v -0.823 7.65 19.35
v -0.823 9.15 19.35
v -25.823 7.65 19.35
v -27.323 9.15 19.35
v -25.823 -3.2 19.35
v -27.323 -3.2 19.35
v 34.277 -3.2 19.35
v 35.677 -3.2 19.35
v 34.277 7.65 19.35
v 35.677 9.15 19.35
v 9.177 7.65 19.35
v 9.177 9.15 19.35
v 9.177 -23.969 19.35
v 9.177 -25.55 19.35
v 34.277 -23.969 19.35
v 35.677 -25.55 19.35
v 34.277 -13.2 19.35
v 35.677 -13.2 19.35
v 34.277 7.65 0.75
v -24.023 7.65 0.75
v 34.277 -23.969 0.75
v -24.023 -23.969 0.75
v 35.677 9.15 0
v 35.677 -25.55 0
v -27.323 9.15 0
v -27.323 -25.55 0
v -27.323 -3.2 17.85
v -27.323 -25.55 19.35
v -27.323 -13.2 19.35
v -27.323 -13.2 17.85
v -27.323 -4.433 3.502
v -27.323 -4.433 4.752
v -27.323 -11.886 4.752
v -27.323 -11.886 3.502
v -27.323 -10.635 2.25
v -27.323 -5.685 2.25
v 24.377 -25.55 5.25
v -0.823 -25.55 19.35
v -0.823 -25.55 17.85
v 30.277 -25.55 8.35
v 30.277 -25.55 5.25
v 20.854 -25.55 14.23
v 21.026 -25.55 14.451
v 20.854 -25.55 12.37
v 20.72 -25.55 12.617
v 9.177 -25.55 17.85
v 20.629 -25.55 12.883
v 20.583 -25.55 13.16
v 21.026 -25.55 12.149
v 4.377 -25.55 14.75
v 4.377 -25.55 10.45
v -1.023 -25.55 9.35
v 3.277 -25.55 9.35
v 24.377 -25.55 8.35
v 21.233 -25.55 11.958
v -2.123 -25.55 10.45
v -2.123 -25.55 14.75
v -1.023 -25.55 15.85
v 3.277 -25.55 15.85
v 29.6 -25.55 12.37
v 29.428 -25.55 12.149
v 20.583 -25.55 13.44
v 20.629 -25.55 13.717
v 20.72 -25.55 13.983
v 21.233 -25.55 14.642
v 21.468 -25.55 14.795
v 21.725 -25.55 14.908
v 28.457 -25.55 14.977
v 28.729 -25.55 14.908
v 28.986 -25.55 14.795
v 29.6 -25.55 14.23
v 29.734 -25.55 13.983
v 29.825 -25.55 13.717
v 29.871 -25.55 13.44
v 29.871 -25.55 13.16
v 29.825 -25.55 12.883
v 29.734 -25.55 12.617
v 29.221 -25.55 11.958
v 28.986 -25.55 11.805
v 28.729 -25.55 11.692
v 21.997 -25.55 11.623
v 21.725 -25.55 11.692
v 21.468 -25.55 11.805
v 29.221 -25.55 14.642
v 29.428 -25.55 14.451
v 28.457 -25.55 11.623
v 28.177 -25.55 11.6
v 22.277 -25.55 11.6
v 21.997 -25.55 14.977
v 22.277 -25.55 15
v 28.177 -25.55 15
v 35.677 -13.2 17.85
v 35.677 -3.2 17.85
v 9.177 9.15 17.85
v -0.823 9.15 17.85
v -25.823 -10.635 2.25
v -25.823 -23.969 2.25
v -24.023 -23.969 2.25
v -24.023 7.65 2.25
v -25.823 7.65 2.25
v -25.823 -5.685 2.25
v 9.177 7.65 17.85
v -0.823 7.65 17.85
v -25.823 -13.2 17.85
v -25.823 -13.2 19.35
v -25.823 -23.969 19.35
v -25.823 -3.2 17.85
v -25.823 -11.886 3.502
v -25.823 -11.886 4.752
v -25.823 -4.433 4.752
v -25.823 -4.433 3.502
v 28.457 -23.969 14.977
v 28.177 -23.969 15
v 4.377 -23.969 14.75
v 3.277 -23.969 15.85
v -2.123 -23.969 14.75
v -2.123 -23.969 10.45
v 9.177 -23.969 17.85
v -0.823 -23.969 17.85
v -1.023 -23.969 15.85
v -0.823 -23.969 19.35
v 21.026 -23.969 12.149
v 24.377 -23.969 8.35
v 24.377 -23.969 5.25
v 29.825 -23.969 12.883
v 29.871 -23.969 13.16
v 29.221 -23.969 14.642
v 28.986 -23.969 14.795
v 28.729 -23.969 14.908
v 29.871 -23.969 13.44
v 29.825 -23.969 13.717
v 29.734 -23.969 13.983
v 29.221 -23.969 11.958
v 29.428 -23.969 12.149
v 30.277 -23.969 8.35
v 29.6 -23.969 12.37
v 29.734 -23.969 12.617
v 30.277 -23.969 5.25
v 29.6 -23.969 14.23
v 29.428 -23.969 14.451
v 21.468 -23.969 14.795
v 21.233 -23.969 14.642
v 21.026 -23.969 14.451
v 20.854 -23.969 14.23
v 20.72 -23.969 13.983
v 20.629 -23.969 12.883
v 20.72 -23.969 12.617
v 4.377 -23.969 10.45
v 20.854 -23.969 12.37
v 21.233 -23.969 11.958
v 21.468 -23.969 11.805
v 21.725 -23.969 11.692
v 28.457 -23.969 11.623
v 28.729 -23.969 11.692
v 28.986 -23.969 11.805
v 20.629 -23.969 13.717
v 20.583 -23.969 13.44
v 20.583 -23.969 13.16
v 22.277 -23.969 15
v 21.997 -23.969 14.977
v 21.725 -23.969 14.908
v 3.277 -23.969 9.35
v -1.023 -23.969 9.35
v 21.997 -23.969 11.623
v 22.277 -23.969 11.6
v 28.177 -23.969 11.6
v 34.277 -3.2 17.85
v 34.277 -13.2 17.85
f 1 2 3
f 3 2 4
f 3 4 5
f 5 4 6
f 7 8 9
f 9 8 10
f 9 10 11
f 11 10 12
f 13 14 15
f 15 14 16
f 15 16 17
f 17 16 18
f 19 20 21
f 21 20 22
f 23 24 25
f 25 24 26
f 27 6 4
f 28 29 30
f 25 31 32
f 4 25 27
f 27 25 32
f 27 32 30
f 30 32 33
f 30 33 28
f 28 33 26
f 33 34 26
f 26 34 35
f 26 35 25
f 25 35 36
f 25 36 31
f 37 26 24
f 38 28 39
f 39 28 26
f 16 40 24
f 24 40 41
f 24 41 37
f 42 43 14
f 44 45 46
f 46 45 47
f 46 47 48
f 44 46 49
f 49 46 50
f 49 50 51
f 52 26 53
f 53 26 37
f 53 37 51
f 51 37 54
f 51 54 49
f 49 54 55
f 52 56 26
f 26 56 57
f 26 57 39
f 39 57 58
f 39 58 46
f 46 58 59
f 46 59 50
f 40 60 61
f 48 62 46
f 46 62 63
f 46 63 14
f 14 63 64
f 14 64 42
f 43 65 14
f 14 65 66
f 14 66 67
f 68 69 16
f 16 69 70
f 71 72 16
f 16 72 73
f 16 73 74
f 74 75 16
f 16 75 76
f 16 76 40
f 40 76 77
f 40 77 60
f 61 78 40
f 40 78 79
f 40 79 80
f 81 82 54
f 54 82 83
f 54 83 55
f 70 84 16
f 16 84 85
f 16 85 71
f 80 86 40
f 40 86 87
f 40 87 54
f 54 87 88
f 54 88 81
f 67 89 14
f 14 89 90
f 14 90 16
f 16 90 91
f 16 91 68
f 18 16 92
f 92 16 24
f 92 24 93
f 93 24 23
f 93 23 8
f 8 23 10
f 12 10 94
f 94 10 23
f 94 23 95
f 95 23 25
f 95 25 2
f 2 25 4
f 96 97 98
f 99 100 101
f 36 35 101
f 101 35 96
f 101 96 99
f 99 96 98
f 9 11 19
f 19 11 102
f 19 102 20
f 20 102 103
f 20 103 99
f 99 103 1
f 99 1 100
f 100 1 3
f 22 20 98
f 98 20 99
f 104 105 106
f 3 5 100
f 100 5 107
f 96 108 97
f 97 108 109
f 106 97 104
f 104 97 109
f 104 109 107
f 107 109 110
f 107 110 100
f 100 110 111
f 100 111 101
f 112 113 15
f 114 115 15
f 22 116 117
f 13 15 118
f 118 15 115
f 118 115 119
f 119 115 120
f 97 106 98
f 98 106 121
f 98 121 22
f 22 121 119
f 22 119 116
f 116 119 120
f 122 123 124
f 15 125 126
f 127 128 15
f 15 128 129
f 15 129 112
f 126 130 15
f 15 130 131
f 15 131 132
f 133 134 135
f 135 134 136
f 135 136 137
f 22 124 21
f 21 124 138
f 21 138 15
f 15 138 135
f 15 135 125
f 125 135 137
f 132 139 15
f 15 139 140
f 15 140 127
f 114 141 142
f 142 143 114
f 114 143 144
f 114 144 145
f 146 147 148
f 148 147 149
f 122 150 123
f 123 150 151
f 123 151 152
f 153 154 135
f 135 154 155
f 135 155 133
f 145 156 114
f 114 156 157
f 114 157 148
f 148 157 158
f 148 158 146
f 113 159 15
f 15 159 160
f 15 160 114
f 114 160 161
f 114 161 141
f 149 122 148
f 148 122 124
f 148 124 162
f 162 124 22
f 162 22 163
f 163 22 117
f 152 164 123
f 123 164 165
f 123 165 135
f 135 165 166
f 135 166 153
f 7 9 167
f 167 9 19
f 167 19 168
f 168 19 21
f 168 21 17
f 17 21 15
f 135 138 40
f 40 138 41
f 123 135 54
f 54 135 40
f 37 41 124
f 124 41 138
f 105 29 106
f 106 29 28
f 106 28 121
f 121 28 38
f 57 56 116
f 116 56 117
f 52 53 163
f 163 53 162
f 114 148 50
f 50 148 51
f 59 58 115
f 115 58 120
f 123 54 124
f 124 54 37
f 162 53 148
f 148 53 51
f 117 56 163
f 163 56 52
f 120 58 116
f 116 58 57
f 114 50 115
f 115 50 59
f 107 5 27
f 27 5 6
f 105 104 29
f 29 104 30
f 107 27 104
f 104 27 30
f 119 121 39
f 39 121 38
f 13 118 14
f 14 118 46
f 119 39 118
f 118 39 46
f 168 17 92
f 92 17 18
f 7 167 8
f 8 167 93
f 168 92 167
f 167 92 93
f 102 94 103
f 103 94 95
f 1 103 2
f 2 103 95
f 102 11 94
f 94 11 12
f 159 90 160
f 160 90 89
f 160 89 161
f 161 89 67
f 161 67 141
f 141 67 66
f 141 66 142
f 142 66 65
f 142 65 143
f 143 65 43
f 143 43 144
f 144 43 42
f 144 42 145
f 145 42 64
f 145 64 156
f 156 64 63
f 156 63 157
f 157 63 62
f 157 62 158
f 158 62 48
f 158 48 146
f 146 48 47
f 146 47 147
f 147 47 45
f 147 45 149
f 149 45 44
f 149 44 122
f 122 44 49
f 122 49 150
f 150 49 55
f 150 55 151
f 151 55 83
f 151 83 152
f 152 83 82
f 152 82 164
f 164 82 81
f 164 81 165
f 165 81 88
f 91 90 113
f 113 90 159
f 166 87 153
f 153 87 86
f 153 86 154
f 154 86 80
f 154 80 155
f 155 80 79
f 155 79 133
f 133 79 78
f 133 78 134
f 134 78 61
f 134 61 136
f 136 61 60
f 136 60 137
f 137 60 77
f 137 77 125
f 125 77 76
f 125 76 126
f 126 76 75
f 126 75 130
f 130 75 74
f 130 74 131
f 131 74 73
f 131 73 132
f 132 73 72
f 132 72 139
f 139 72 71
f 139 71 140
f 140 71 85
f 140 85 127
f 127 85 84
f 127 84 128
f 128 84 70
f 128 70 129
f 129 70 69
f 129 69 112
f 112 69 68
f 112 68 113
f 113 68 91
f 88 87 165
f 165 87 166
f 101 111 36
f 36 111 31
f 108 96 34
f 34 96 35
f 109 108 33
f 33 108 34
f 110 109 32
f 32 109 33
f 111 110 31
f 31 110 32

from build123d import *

# Parameters (mm, degrees)
CROQUIS1_W              = 58.2
CROQUIS1_H              = 31.7
CROQUIS1_R              = 1.55
SALIENTE_EXTRUIR1_DEPTH = 0.75
CROQUIS3_W              = 63
CROQUIS3_H              = 34.7
CROQUIS3_W_2            = 58.2
CROQUIS3_H_2            = 31.7
SALIENTE_EXTRUIR2_DEPTH = 2.25
CROQUIS4_W              = 63
CROQUIS4_H              = 34.7
CROQUIS4_W_2            = 60
CROQUIS4_H_2            = 31.619362532
SALIENTE_EXTRUIR3_DEPTH = 9.35
CROQUIS5_W              = 0.932931466
CROQUIS5_H              = 31.619362532
CORTAR_EXTRUIR1_DEPTH   = 10
CROQUIS6_W              = 0.932931466
CROQUIS6_H              = 31.619362532
SALIENTE_EXTRUIR4_DEPTH = 0.75
CROQUIS7_W              = 6.3
CROQUIS7_H              = 3.1
CORTAR_EXTRUIR2_DEPTH   = 10
CROQUIS9_W              = 63
CROQUIS9_H              = 34.7
CROQUIS9_W_2            = 60.1
CROQUIS9_H_2            = 31.619362532
SALIENTE_EXTRUIR5_DEPTH = 10
CROQUIS10_W             = 6.5
CROQUIS10_H             = 6.5
CORTAR_EXTRUIR3_DEPTH   = 10
CORTAR_EXTRUIR4_DEPTH   = 10
CROQUIS12_W             = 0.4
CROQUIS12_H             = 3.1
SALIENTE_EXTRUIR6_DEPTH = 1.580637468
CORTAR_EXTRUIR5_DEPTH   = 10
SALIENTE_EXTRUIR7_DEPTH = 1.580637468
CROQUIS15_W             = 63
CROQUIS15_H             = 34.7
SALIENTE_EXTRUIR8_DEPTH = 0.75
CORTAR_EXTRUIR6_DEPTH   = 1.5
CORTAR_EXTRUIR8_DEPTH   = 10
SALIENTE_EXTRUIR9_DEPTH = 1.5
CORTAR_EXTRUIR9_DEPTH   = 10


with BuildPart() as part:
    # Croquis1 → Saliente-Extruir1 (new body)
    with BuildSketch(Plane.XY):
        with Locations((5.077191095, -8.199822064)):
            Rectangle(CROQUIS1_W, CROQUIS1_H)
        with Locations((-20.872808905, 4.450177936)):
            Circle(CROQUIS1_R, mode=Mode.SUBTRACT)
        with Locations((31.027191095, 4.450177936)):
            Circle(CROQUIS1_R, mode=Mode.SUBTRACT)
        with Locations((-20.872808905, -20.849822064)):
            Circle(CROQUIS1_R, mode=Mode.SUBTRACT)
        with Locations((31.027191095, -20.849822064)):
            Circle(CROQUIS1_R, mode=Mode.SUBTRACT)
    extrude(amount=SALIENTE_EXTRUIR1_DEPTH)

    # Croquis3 → Saliente-Extruir2 (add)
    with BuildSketch(Plane(origin=(0, 0, 0), x_dir=(-1, 0, 0), z_dir=(0, 0, -1))):
        with Locations((-4.177191095, -8.199822064)):
            Rectangle(CROQUIS3_W, CROQUIS3_H)
        with Locations((-5.077191095, -8.199822064)):
            Rectangle(CROQUIS3_W_2, CROQUIS3_H_2, mode=Mode.SUBTRACT)
    extrude(amount=-SALIENTE_EXTRUIR2_DEPTH)

    # Croquis4 → Saliente-Extruir3 (add)
    with BuildSketch(Plane.XY):
        with Locations((4.177191095, -8.199822064)):
            Rectangle(CROQUIS4_W, CROQUIS4_H)
        with Locations((4.177191095, -8.15950333)):
            Rectangle(CROQUIS4_W_2, CROQUIS4_H_2, mode=Mode.SUBTRACT)
    extrude(amount=SALIENTE_EXTRUIR3_DEPTH)

    # Croquis5 → Cortar-Extruir1 (cut)
    with BuildSketch(Plane.XY):
        with Locations((33.810725362, -8.15950333)):
            Rectangle(CROQUIS5_W, CROQUIS5_H)
    extrude(amount=CORTAR_EXTRUIR1_DEPTH, mode=Mode.SUBTRACT)

    # Croquis6 → Saliente-Extruir4 (add)
    with BuildSketch(Plane(origin=(0, 0, 0), x_dir=(-1, 0, 0), z_dir=(0, 0, -1))):
        with Locations((-33.810725362, -8.15950333)):
            Rectangle(CROQUIS6_W, CROQUIS6_H)
    extrude(amount=-SALIENTE_EXTRUIR4_DEPTH)

    # Croquis7 → Cortar-Extruir2 (cut)
    with BuildSketch(Plane(origin=(0, -23.969184596, 0), x_dir=(1, 0, 0), z_dir=(0, 1, 0))):
        with Locations((27.127191095, -6.8)):
            Rectangle(CROQUIS7_W, CROQUIS7_H)
    extrude(amount=-CORTAR_EXTRUIR2_DEPTH, mode=Mode.SUBTRACT)

    # Croquis9 → Saliente-Extruir5 (add)
    with BuildSketch(Plane.XY.offset(9.35)):
        with Locations((4.177191095, -8.199822064)):
            Rectangle(CROQUIS9_W, CROQUIS9_H)
        with Locations((4.227191095, -8.15950333)):
            Rectangle(CROQUIS9_W_2, CROQUIS9_H_2, mode=Mode.SUBTRACT)
    extrude(amount=SALIENTE_EXTRUIR5_DEPTH)

    # Croquis10 → Cortar-Extruir3 (cut)
    with BuildSketch(Plane(origin=(0, -23.969184596, 0), x_dir=(1, 0, 0), z_dir=(0, 1, 0))):
        with Locations((1.127191095, -12.6)):
            Rectangle(CROQUIS10_W, CROQUIS10_H)
    extrude(amount=-CORTAR_EXTRUIR3_DEPTH, mode=Mode.SUBTRACT)

    # Croquis11 → Cortar-Extruir4 (cut)
    with BuildSketch(Plane(origin=(0, -23.969184596, 0), x_dir=(1, 0, 0), z_dir=(0, 1, 0))):
        with BuildLine():
            Line((22.277191095, -11.7), (28.177191095, -11.7))
            ThreePointArc((28.177191095, -11.7), (29.777191095, -13.3), (28.177191095, -14.9))
            Line((28.177191095, -14.9), (22.277191095, -14.9))
            ThreePointArc((22.277191095, -14.9), (20.677191095, -13.3), (22.277191095, -11.7))
        make_face()
    extrude(amount=-CORTAR_EXTRUIR4_DEPTH, mode=Mode.SUBTRACT)

    # Croquis12 → Saliente-Extruir6 (add)
    with BuildSketch(Plane.XZ.offset(25.549822064)):
        with Locations((24.177191095, 6.8)):
            Rectangle(CROQUIS12_W, CROQUIS12_H)
    extrude(amount=-SALIENTE_EXTRUIR6_DEPTH)

    # Croquis13 → Cortar-Extruir5 (cut)
    with BuildSketch(Plane(origin=(-25.822808905, 0, 0), x_dir=(0, 0, -1), z_dir=(1, 0, 0))):
        Polygon((-6.25, -4.434822064), (-5, -4.434822064), (-3.75, -5.684822064), (-3.75, -10.634822064), (-5, -11.884822064), (-6.25, -11.884822064), align=None)
    extrude(amount=-CORTAR_EXTRUIR5_DEPTH, mode=Mode.SUBTRACT)

    # Croquis14 → Saliente-Extruir7 (add)
    with BuildSketch(Plane.XZ.offset(25.549822064)):
        Polygon((4.377191095, 10.45), (3.277191095, 9.35), (4.377191095, 9.35), align=None)
        Polygon((-1.022808905, 9.35), (-2.122808905, 10.45), (-2.122808905, 9.35), align=None)
        Polygon((-2.122808905, 14.75), (-1.022808905, 15.85), (-2.122808905, 15.85), align=None)
        Polygon((3.277191095, 15.85), (4.377191095, 14.75), (4.377191095, 15.85), align=None)
    extrude(amount=-SALIENTE_EXTRUIR7_DEPTH)

    # Croquis15 → Saliente-Extruir8 (add)
    with BuildSketch(Plane(origin=(0, 0, 0), x_dir=(-1, 0, 0), z_dir=(0, 0, -1))):
        with Locations((-4.177191095, -8.199822064)):
            Rectangle(CROQUIS15_W, CROQUIS15_H)
    extrude(amount=-SALIENTE_EXTRUIR8_DEPTH)

    # Croquis16 → Cortar-Extruir6 (cut)
    with BuildSketch(Plane.XY.offset(19.35)):
        Polygon((-32.290822341, -3.199822064), (-0.822808905, -3.199822064), (-0.822808905, 14.947745762), (9.177191095, 14.947745762), (9.177191095, -3.199822064), (49.10392573, -3.199822064), (49.10392573, -13.199822064), (9.177191095, -13.199822064), (9.177191095, -34.683452232), (-0.822808905, -34.683452232), (-0.822808905, -13.199822064), (-32.290822341, -13.199822064), align=None)
    extrude(amount=-CORTAR_EXTRUIR6_DEPTH, mode=Mode.SUBTRACT)

    # Croquis17 → Cortar-Extruir8 (cut)
    with BuildSketch(Plane.XZ.offset(25.549822064)):
        with BuildLine():
            Line((22.277191095, 15), (28.177191095, 15))
            ThreePointArc((28.177191095, 15), (29.877191095, 13.3), (28.177191095, 11.6))
            Line((28.177191095, 11.6), (22.277191095, 11.6))
            ThreePointArc((22.277191095, 11.6), (20.577191095, 13.3), (22.277191095, 15))
        make_face()
    extrude(amount=-CORTAR_EXTRUIR8_DEPTH, mode=Mode.SUBTRACT)

    # Croquis22 → Saliente-Extruir9 (add)
    with BuildSketch(Plane.ZY.offset(27.322808905)):
        Polygon((6.25, -4.434822064), (6.25, -11.884822064), (5, -11.884822064), (3.75, -10.634822064), (3.75, -5.684822064), (5, -4.434822064), align=None)
    extrude(amount=-SALIENTE_EXTRUIR9_DEPTH)

    # Croquis24 → Cortar-Extruir9 (cut)
    with BuildSketch(Plane(origin=(-25.822808905, 0, 0), x_dir=(0, 0, -1), z_dir=(1, 0, 0))):
        Polygon((-2.25, -5.684822064), (-2.25, -10.634822064), (-3.501579003, -11.886401067), (-4.751579003, -11.886401067), (-4.751579003, -4.433243061), (-3.501579003, -4.433243061), align=None)
    extrude(amount=-CORTAR_EXTRUIR9_DEPTH, mode=Mode.SUBTRACT)


solid = part.part
